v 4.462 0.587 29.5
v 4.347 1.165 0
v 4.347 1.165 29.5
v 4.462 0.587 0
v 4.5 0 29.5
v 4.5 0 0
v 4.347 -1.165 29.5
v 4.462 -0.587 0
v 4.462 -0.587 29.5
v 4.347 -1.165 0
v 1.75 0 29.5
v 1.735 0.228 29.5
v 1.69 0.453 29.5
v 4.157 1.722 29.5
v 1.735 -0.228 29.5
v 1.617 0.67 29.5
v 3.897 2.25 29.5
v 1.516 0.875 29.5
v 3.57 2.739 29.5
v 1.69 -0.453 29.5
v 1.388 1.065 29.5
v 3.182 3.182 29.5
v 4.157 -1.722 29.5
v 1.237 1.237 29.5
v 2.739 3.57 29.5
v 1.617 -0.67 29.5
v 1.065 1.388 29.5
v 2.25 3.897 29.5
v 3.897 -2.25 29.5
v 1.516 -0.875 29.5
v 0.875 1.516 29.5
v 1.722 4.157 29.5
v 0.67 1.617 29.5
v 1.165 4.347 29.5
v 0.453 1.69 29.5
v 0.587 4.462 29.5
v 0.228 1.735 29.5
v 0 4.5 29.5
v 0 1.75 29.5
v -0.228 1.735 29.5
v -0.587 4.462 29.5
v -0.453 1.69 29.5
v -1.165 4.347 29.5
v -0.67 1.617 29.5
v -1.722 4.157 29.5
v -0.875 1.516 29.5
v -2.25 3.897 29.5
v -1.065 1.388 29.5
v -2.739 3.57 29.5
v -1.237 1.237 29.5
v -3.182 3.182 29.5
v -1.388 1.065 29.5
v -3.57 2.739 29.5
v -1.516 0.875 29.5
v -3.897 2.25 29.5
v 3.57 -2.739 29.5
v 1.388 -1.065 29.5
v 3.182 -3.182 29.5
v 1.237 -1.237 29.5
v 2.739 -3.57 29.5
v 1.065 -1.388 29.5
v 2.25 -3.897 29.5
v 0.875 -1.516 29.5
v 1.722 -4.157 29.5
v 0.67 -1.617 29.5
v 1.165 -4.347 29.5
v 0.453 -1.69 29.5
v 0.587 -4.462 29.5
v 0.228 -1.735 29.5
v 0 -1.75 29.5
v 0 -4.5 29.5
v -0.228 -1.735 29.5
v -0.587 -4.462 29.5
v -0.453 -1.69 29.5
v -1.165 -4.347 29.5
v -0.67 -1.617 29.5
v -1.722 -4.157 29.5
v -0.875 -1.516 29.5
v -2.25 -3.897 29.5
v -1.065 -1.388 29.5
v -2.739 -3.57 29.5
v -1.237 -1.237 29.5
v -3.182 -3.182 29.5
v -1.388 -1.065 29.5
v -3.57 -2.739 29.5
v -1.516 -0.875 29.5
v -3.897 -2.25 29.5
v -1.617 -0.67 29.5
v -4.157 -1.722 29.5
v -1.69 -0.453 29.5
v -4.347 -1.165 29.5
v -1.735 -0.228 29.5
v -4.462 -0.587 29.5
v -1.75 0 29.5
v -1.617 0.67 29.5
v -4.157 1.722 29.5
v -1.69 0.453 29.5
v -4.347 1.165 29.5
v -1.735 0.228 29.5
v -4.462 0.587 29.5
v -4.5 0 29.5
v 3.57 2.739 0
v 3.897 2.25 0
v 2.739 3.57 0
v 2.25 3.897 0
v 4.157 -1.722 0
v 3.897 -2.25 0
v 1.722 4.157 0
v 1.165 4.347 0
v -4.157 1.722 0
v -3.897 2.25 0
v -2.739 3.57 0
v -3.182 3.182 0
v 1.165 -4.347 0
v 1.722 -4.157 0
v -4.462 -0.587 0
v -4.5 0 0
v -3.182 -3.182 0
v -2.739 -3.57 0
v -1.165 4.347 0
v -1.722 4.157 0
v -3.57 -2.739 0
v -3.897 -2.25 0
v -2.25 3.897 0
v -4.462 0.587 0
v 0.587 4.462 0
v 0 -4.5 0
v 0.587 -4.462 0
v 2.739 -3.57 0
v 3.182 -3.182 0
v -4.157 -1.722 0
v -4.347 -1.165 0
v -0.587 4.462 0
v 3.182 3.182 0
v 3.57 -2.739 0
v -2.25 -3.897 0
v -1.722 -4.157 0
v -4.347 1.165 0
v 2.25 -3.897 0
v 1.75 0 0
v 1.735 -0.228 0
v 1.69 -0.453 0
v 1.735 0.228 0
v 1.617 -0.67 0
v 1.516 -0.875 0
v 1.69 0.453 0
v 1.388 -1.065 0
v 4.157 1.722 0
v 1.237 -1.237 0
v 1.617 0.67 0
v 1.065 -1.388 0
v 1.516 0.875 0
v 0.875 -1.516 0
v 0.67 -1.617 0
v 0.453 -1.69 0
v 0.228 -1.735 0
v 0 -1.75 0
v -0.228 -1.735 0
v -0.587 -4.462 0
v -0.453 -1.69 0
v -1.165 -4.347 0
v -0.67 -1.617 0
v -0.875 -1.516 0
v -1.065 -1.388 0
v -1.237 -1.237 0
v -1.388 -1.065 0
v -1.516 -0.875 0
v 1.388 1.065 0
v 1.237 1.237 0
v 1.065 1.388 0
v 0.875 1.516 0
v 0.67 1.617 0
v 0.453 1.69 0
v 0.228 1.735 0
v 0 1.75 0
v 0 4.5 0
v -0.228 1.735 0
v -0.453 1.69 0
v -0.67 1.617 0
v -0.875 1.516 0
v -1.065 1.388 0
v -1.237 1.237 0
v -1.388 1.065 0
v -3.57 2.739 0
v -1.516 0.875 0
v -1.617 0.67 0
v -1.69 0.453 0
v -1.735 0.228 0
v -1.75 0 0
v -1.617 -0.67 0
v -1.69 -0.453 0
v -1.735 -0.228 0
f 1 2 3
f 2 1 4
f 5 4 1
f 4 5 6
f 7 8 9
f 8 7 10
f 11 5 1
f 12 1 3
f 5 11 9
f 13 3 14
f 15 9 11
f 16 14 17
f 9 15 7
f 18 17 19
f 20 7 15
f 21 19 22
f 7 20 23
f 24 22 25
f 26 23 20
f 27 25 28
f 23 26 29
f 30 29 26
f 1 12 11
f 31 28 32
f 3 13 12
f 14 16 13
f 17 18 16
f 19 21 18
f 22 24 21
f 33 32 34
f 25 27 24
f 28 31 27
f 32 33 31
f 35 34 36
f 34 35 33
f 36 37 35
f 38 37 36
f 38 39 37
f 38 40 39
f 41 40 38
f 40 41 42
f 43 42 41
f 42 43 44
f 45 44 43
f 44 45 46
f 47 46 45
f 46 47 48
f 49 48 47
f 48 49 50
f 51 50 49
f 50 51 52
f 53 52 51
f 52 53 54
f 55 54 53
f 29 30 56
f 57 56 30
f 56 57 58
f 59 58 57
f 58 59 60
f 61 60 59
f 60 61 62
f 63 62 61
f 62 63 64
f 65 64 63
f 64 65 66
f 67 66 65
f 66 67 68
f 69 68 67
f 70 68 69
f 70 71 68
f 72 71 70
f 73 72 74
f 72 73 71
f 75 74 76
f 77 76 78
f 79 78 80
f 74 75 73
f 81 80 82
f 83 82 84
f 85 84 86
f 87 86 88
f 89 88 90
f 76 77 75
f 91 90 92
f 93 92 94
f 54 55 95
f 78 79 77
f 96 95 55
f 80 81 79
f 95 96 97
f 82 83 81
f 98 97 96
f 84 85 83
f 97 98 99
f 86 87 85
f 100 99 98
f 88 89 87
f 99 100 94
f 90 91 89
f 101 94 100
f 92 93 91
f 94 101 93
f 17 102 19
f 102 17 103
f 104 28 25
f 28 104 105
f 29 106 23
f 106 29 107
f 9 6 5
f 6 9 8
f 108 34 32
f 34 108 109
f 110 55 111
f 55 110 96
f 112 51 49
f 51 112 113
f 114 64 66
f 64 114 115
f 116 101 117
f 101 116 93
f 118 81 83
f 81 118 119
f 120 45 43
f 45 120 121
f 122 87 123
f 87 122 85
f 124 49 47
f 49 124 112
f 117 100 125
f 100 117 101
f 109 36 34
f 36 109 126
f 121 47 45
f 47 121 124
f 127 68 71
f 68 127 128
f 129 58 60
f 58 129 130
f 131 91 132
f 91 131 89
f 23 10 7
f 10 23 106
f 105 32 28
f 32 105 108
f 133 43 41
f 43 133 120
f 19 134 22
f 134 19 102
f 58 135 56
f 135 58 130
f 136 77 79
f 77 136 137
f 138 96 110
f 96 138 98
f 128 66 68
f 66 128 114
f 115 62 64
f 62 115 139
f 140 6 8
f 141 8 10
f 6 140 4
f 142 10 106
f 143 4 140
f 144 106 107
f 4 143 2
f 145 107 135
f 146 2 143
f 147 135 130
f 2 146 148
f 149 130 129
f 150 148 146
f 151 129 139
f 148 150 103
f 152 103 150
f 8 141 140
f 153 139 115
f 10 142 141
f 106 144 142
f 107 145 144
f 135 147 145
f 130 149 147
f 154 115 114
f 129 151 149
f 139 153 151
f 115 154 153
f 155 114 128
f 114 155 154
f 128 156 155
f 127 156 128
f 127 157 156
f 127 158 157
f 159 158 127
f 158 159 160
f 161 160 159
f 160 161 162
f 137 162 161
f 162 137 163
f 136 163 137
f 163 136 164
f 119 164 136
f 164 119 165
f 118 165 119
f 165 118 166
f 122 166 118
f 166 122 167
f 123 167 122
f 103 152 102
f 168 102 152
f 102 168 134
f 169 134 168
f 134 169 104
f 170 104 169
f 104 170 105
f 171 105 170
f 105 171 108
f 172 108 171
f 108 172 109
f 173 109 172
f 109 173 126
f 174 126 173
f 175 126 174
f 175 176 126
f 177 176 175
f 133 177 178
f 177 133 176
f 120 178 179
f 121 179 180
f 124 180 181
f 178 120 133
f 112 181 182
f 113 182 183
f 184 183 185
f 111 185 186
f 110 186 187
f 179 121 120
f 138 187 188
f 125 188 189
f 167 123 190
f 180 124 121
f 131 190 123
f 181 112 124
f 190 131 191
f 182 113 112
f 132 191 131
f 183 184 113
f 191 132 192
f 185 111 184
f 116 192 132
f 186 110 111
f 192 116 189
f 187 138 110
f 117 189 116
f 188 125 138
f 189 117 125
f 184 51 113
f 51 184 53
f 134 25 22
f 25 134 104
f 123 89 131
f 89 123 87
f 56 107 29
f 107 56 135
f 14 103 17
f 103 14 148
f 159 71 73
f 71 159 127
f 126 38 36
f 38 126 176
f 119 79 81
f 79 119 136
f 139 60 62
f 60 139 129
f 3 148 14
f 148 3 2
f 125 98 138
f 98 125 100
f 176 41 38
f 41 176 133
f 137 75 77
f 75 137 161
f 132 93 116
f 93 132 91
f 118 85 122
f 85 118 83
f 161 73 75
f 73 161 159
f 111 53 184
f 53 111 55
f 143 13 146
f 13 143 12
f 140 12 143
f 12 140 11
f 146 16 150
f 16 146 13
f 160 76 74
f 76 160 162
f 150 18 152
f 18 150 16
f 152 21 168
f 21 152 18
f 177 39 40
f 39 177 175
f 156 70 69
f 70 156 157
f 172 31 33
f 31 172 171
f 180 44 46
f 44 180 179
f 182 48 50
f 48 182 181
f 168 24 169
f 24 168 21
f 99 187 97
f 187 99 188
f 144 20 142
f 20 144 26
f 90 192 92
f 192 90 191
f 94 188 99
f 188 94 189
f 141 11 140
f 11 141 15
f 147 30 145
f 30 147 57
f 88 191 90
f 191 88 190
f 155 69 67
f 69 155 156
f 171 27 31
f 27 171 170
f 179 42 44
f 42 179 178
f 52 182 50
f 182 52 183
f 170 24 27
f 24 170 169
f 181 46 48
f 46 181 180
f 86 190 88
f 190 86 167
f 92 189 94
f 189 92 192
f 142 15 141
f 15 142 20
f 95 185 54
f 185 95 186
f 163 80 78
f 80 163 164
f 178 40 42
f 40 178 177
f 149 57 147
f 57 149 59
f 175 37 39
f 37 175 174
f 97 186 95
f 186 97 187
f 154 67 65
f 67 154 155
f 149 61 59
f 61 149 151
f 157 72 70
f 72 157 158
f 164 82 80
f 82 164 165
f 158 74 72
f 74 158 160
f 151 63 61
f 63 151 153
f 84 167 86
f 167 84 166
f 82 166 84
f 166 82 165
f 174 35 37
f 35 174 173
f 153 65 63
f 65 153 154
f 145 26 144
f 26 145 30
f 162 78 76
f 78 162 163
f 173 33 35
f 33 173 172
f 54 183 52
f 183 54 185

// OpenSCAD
// file: parameters.scad
// =============================================================================
// Gen-BZ — nightly 2026-10-11 (physics_scorer, honest magpylib watts)
// Minimum-gap, wire-saver stator for the Gen-BX rotors: only 5.4 mm of copper (12 layers), so the magnet faces are just 8.0 mm apart and peak Bz at the copper reaches ≈0.64 T. It holds ~20 % less copper than Gen-BX (≈300 m, leaving ~90 m of the spool spare and much less winding), and loses only ≈5.5 % of the watts vs Gen-BX — the best watts-per-metre of wire tonight.
// Clocking 0 deg (magnets N facing S) + D-flat keyed bore + index notch + flip-symmetric hole map.
// Windable 2-piece bobbin; turns = physics_scorer turns_fit; copper only between flanges.
// Steel back-iron: 2× Ø168 × 4.76 mm (3/16") mild-steel discs (steel_backiron_disc.dxf); magnets sit ON the steel
// (through-pockets) -> score with --back-iron. Night 2026-10-11.
// =============================================================================
topology            = "dual_rotor";

// --- Wire / winding (physics_scorer winding-fit) -------------------------------
wire_awg            = 26;
wire_od             = 0.45;     // insulated OD mm (bare 0.405)
fill_realistic      = 0.65;     // insulated-wire area / window (DENSE layered wind with a jig; scorer cap 0.65)
turns               = 328;       // = physics_scorer turns_fit (do NOT raise)
coil_former_type    = "bobbin";
coil_core_inset     = 14.87;     // radial copper build: hub = copper boundary inset by this
wind_build_axial    = 0.0;      // nothing proud of the flanges
wind_build_radial   = 0.0;

// --- Bobbin (base + lid) ---------------------------------------------------------
coil_id_r           = 53.00;    // copper boundary sector
coil_od_r           = 88.00;
span_deg            = 26.43;    // = pitch - 2*asin((wall+0.85)/coil_id_r) -> >=1.2 mm stator web
former_web          = 5.40;     // copper height between flanges (TALL copper: steel keeps Bz up)
flange_t            = 0.80;     // >= 0.8 mm FDM wall rule (tall winds push on the flanges)
wall                = 0.80;     // flange lip beyond copper
former_bare_h       = former_web + 2 * flange_t;
coil_envelope_h     = former_bare_h + 2 * wind_build_axial;
tab_w               = 7.0;
tab_len             = 7.0;
tab_h               = former_bare_h / 2;
pin_d               = 1.9;      // 1.75 mm filament locating pin
coil_mount_r        = coil_od_r + 0.2 + 4.0;
lead_y              = 1.6;
lead_slot_w         = 0.9;
lead_groove_d       = 0.6;

// --- Gap -------------------------------------------------------------------------
run_clear           = 0.50;     // rotor face -> flange
gap_spacer_h        = run_clear + wind_build_axial;
m2m                 = coil_envelope_h + 2 * run_clear;   // rotor face to rotor face (= gap_sleeve length)

// --- Stator ----------------------------------------------------------------------
coil_stations       = 12;
bay_clear           = 0.25;
stator_thick        = former_bare_h;                        // bobbins flush both faces
stator_od           = 194;
shaft_clear_stator  = 14.0;     // stator is static; gap sleeve OD 12 spins inside

// --- Rotor(s) --------------------------------------------------------------------
magnet_Br           = 1.43;     // N52
magnet_d_large      = 20.0;
magnet_h_large      = 5.0;      // one O20x5 per pocket
magnet_h_small      = 5.0;      // unused: no O5 pockets in this kit
halbach_magnetisation = "none";  // NO O5 assist magnets in this kit (scan: they lower the 4-pole score)
rotor_b_same_axis   = true;     // same-index magnets share one axis: N faces S across the gap
large_pocket_d      = 20.3;
small_pocket_d      = 5.3;
pocket_h            = 5.00;     // THROUGH the carrier: magnet back face sits on the steel disc (FLUSH seat: carrier = magnet height, magnet face level with the rotor face)
large_n             = 8;
R_large             = 71.0;
small_r_list        = [];       // no O5 pockets
carrier_od          = 168.0;
carrier_thick       = pocket_h;
hub_h               = 12.0;     // > steel_t + insert: radial set-screw clears the steel
hub_od              = 24.0;     // slim hub so the M4 brace rods fit at R~18 inside the coil ring
hub_insert_d        = 4.0;      // M3 heat-set insert, radial, bears on the D-flat
rotor_b_offset_deg  = 0.0;      // CLOCKING: magnets directly opposite
shaft_key           = "dflat";
dflat_depth         = 0.5;      // 8 mm shaft with 0.5 mm flat (7.5 across flat)
index_notch_d       = 3.0;

// --- Steel back-iron (buyable laser-cut) -------------------------------------------
steel_t             = 4.76;      // mild steel thickness (image method ignores it; sized from steel_flux.py so the return path stays well below saturation)
steel_center_hole   = 26.0;     // slips over the rotor hub (OD 24)
steel_od            = carrier_od;   // steel disc OD = rotor carrier OD

// --- Modular MAX interface ----------------------------------------------------------
shaft_bore          = 8.35;
dflat_x             = 4.0 - dflat_depth + (shaft_bore - 8.0) / 2;
bearing_d           = 21.85;
bearing_h           = 7.2;
m3_clear            = 3.5;
bolt_r_inner        = 30.0;     // M3 steel-disc clamp bolts (inside the magnet ring)
bolt_n_inner        = 4;
bolt_inner_angles   = [0, 90, 180, 270];
bolt_r_outer        = 44.0;     // second M3 steel-disc clamp ring
bolt_outer_angles   = [67.5, 112.5, 247.5, 292.5];
flange_bolt_r       = 91.5;     // frame rods: OUTSIDE the rotor OD (rotors spin inside them)
flange_bolt_n       = 4;
flange_bolt_offset  = 45.00;    // between coil stations -> never cuts a lead groove/tab
brace_r             = 18.0;
brace_d             = 4.3;      // temporary M4 jack rods (assembly only)
brace_n             = 4;
brace_angles        = [45, 135, 225, 315];          // flip-symmetric

spacer_pad_od       = 14.0;
spacer_pad_id       = m3_clear;
endbell_od          = 193.0;
endbell_thick       = 8.0;
endbell_shaft_clear = 10.0;
collar_h            = 10.0;
standoff_od         = 9.0;
frame_standoff_h    = run_clear + carrier_thick + hub_h + collar_h + 2.0;
sleeve_od           = 12.0;
plate_max_mm        = 410;

$fn = 64;
// main file
// Gen-BZ — frame standoff tube between stator and an endbell, on each M3 frame rod (outside rotor OD).
// Print x4. Height = frame_standoff_h (rotor + steel + hub + collar + running clearance).
include <parameters.scad>;
$fn = 48;
difference() {
    cylinder(d=standoff_od, h=frame_standoff_h);
    translate([0, 0, -0.1]) cylinder(d=m3_clear, h=frame_standoff_h + 0.2);
}
